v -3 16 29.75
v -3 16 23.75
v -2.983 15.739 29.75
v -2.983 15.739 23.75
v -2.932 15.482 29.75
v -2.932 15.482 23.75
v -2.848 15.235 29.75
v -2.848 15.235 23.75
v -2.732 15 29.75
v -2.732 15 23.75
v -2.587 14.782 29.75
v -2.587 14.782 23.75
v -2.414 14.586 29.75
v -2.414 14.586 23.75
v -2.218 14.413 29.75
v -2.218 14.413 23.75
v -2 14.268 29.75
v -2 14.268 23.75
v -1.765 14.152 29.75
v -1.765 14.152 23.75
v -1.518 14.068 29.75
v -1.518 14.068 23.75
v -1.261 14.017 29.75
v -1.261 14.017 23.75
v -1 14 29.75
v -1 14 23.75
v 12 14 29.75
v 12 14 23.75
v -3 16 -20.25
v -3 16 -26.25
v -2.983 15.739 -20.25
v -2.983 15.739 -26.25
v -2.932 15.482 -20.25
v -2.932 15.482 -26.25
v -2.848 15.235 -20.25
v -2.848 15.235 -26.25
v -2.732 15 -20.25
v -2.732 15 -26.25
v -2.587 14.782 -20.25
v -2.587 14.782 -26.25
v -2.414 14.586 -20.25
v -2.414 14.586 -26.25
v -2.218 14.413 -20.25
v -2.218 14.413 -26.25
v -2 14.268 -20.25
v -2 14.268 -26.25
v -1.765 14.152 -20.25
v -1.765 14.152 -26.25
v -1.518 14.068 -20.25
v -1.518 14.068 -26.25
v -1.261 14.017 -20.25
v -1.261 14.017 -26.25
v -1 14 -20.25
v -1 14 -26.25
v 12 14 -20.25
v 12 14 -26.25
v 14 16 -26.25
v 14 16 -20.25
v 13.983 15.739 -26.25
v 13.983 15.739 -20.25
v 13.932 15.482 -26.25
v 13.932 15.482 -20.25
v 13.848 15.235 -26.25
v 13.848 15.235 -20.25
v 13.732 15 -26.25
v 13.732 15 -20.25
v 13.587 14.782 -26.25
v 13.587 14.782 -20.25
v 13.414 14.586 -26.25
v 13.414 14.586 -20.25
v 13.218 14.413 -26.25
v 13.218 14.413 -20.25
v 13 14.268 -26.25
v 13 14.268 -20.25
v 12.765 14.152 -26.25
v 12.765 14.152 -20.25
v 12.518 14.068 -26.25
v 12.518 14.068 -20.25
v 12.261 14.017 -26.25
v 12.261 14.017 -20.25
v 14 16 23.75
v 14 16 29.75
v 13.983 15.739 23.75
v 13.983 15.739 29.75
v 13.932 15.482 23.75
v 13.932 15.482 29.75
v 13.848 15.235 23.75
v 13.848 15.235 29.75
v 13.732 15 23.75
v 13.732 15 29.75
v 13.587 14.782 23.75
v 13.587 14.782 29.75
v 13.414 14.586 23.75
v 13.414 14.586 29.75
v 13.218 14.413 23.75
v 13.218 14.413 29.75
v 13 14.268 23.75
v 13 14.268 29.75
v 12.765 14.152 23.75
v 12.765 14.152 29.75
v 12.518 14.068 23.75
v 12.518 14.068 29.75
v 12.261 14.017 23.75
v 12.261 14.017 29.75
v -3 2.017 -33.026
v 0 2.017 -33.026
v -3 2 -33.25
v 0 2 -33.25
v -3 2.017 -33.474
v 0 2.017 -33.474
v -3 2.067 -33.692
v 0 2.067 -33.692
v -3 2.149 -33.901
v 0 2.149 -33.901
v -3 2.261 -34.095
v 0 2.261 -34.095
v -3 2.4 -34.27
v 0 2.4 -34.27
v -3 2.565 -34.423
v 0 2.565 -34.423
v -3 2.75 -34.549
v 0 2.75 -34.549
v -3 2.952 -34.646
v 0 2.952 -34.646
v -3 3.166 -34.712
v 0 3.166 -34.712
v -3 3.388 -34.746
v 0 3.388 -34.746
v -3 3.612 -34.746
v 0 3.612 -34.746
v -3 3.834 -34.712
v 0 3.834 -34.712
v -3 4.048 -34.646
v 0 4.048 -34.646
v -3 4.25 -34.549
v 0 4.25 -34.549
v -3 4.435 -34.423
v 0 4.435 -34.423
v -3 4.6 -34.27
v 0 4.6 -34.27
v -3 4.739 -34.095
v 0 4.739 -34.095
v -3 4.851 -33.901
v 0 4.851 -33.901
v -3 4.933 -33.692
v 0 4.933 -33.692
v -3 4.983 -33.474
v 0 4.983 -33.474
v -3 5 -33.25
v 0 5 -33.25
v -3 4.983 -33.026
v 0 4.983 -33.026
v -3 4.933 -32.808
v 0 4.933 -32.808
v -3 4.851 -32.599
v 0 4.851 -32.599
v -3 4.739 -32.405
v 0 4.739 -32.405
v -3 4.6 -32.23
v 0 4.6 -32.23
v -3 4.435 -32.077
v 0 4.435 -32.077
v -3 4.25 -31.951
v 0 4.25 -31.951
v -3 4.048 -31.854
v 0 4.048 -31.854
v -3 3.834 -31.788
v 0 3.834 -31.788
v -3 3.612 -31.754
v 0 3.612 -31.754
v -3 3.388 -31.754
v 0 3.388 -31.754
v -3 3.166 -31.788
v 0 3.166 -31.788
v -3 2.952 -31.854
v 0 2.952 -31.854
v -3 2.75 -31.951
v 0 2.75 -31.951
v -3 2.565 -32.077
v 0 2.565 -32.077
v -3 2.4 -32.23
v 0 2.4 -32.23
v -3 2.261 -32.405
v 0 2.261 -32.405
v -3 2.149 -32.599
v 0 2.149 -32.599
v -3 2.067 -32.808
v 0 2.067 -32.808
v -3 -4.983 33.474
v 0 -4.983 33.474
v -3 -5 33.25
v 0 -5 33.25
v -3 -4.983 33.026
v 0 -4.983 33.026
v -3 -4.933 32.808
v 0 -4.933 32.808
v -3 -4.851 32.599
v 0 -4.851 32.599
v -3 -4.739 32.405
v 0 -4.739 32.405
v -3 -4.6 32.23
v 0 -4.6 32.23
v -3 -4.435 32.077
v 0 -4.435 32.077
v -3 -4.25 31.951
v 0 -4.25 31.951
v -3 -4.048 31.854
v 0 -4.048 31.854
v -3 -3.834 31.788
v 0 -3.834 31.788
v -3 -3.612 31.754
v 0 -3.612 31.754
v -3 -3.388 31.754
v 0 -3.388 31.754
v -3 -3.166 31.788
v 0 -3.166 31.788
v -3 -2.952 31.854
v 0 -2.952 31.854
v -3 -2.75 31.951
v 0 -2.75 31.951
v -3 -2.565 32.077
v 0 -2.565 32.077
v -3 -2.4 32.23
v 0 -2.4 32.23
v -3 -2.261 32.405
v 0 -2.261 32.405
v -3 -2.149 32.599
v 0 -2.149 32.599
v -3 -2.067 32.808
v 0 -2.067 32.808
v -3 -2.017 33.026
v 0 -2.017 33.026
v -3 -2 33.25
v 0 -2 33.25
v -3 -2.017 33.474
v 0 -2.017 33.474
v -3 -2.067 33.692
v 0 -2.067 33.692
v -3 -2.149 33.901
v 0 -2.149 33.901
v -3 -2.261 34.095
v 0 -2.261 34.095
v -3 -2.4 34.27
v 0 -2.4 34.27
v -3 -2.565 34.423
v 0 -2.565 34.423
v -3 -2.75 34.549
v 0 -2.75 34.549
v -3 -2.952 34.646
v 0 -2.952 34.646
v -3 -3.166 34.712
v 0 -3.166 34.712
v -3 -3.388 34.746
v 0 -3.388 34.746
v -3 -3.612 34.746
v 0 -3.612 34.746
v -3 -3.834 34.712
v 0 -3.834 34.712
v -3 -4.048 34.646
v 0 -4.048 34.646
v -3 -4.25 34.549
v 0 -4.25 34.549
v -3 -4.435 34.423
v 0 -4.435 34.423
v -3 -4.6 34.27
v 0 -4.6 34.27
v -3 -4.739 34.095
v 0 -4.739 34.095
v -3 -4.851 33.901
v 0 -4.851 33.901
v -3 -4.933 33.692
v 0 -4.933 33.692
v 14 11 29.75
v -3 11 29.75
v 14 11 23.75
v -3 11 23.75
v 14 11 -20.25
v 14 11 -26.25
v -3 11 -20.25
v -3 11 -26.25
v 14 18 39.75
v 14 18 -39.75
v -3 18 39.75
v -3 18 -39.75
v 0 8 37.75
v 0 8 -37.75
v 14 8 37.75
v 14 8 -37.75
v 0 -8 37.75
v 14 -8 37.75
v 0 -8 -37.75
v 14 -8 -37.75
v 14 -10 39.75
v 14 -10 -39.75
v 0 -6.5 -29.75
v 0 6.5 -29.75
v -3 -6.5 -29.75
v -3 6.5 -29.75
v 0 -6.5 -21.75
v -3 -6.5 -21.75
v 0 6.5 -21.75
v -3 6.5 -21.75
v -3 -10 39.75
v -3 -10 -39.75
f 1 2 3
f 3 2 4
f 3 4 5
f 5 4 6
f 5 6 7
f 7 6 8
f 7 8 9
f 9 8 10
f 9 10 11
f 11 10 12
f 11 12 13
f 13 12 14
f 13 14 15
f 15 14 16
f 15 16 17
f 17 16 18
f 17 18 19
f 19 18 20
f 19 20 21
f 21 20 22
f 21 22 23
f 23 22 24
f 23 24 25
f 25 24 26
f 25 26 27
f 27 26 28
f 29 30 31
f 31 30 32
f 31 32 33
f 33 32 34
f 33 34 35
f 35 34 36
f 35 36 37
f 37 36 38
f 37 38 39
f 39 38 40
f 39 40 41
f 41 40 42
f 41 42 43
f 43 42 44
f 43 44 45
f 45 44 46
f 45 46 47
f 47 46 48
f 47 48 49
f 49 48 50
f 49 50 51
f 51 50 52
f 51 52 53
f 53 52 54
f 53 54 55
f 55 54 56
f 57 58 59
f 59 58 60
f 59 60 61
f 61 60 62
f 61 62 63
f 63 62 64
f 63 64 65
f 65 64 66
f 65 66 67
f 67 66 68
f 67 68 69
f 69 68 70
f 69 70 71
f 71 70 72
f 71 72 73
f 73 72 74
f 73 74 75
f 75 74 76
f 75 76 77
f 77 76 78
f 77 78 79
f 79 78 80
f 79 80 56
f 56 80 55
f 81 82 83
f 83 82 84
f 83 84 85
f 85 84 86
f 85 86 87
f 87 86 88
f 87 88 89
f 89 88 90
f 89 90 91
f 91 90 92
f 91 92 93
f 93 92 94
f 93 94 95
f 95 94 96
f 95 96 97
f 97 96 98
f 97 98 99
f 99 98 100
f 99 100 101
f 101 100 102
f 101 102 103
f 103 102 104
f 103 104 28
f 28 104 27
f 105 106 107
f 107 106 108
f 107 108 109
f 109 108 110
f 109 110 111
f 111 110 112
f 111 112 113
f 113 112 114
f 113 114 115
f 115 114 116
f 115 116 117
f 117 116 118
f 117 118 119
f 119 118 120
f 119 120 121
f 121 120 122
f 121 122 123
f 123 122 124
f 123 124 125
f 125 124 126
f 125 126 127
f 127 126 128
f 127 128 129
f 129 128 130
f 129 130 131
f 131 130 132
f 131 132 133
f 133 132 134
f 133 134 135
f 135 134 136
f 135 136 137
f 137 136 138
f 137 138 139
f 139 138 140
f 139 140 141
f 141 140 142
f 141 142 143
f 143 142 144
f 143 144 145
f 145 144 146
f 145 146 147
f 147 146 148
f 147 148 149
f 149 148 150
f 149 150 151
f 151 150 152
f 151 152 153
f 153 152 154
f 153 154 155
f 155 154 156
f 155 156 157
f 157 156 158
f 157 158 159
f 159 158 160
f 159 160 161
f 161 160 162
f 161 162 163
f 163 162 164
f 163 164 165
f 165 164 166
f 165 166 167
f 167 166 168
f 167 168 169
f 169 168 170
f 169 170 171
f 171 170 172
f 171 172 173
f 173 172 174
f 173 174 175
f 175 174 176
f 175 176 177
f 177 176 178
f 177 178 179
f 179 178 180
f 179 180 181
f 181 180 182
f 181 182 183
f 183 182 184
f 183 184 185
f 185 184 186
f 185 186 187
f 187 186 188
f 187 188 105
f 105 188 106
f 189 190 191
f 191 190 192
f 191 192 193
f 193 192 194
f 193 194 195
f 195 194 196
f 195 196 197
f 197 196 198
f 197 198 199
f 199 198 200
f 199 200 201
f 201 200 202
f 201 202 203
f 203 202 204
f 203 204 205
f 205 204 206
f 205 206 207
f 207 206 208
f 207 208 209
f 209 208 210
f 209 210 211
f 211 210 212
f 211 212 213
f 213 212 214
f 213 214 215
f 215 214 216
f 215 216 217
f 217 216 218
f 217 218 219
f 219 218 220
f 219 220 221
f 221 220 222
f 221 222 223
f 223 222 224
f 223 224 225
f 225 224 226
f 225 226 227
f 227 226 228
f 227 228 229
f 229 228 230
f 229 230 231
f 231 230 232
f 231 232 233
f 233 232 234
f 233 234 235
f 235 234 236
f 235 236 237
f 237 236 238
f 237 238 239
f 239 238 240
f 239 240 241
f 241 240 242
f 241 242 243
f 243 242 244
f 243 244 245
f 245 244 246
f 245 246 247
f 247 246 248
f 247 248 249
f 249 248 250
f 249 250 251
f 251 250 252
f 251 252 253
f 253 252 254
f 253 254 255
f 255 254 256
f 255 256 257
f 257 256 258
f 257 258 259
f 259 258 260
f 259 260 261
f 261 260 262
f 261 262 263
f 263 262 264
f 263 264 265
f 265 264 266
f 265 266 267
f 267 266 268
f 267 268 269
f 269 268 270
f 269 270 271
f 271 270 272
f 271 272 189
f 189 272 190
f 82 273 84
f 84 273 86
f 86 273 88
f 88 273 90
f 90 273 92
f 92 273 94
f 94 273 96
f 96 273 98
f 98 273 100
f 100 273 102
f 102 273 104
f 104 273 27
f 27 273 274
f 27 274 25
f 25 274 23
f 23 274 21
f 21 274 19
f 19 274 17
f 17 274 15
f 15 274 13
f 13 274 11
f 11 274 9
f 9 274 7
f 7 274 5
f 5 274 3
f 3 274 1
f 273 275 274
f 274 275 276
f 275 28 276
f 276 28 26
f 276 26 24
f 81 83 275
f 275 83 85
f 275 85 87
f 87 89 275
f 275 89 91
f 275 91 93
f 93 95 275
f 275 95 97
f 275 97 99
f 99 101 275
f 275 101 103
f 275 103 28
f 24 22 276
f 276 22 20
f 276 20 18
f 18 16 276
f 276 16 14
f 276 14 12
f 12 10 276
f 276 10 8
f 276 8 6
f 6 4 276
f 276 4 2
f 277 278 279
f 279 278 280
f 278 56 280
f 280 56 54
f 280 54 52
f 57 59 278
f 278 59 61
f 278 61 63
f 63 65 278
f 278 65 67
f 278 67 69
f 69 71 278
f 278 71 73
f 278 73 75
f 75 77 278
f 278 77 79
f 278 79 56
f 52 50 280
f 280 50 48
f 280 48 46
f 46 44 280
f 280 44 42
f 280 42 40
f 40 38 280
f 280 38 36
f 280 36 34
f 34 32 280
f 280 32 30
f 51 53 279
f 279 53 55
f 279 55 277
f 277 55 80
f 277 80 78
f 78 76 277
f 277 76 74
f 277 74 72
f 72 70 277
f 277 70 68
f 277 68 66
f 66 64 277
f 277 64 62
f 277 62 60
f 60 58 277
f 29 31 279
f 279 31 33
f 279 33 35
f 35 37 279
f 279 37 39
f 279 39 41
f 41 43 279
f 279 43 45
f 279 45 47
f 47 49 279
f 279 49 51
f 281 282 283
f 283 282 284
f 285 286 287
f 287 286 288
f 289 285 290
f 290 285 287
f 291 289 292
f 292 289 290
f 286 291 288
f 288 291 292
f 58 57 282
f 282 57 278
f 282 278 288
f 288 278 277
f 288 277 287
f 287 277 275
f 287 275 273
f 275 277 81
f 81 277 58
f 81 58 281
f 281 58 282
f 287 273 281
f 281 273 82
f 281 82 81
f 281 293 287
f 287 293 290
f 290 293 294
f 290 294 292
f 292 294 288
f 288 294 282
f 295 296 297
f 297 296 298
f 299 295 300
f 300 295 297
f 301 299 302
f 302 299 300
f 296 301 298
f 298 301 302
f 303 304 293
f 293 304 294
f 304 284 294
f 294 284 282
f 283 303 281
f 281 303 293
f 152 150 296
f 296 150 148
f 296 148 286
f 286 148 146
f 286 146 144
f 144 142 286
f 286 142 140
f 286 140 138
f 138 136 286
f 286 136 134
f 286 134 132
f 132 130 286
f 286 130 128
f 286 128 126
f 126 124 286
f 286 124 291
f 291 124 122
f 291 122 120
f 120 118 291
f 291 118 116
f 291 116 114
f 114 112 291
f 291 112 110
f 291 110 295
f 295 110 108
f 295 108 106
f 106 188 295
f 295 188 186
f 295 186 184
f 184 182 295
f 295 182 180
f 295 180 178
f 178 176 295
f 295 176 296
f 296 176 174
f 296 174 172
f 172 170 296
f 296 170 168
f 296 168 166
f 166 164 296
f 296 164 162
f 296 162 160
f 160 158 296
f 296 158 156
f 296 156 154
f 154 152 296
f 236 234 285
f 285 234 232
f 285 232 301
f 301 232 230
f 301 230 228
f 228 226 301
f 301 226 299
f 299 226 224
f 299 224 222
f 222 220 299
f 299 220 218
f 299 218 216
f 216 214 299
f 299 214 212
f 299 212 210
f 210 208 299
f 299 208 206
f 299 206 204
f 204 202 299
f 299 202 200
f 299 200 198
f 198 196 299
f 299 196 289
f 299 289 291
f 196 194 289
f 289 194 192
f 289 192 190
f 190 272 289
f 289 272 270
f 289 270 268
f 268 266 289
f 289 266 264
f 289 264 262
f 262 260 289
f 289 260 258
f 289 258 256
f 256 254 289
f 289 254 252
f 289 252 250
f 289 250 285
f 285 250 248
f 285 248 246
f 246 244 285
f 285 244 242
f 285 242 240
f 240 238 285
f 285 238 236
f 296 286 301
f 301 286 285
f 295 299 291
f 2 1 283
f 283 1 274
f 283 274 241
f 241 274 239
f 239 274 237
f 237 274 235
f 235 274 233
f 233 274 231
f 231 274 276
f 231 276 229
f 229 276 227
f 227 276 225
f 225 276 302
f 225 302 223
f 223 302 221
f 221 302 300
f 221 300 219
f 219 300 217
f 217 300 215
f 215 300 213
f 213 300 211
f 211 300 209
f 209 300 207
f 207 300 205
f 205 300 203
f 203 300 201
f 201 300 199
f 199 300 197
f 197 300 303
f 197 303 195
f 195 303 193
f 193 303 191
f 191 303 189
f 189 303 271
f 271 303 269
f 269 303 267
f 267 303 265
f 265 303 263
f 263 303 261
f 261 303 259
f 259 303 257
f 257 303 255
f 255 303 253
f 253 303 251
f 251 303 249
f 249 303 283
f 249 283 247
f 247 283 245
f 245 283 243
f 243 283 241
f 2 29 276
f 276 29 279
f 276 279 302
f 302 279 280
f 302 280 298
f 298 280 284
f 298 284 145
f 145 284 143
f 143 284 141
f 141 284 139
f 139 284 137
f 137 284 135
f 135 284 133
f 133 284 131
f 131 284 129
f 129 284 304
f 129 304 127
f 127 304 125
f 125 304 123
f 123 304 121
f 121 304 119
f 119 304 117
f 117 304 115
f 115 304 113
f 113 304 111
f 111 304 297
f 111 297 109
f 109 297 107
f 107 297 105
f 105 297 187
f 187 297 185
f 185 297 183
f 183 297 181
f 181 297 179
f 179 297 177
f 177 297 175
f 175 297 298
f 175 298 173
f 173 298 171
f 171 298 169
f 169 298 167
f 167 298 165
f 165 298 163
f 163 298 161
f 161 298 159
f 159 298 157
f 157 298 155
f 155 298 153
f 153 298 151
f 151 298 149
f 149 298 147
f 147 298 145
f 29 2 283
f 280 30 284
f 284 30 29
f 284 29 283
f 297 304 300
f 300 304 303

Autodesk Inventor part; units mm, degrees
ref_plane "YZ Plane" through (0, 0, 0) normal (1, 0, 0) x (0, 1, 0)
ref_plane "XZ Plane" through (0, 0, 0) normal (0, 1, 0) x (-1, 0, 0)
ref_plane "XY Plane" through (0, 0, 0) normal (0, 0, 1) x (1, 0, 0)
sketch "Sketch1" plane through (0, 0, 0) normal (1, 0, 0) x (0, 1, 0)
  line L0 (-8, 37.75) -> (8, 37.75)
  line L1 (8, 37.75) -> (8, -37.75)
  line L2 (8, -37.75) -> (-8, -37.75)
  line L3 (-8, -37.75) -> (-8, 37.75)
  line L4 (-10, 39.75) -> (10, 39.75)
  line L5 (10, 39.75) -> (10, -39.75)
  line L6 (10, -39.75) -> (-10, -39.75)
  line L7 (-10, -39.75) -> (-10, 39.75)
  line L8 (-6.6198, 22.75) -> (6.3802, 22.75) construction
  line L9 (6.3802, 22.75) -> (6.3802, -19.25) construction
  line L10 (6.3802, -19.25) -> (-6.6198, -19.25) construction
  line L11 (-6.6198, -19.25) -> (-6.6198, 22.75) construction
  line L12 (-6.5, -21.75) -> (6.5, -21.75)
  line L13 (6.5, -21.75) -> (6.5, -29.75)
  line L14 (6.5, -29.75) -> (-6.5, -29.75)
  line L15 (-6.5, -29.75) -> (-6.5, -21.75)
  line L16 (8, 37.75) -> (-8, -37.75) construction
  line L17 (10, 39.75) -> (18, 39.75)
  line L18 (18, 39.75) -> (18, -39.75)
  line L19 (18, -39.75) -> (10, -39.75)
  line L20 (10, -39.75) -> (10, 39.75)
  line L21 (14, 29.75) -> (11, 29.75)
  line L22 (11, 29.75) -> (11, 23.75)
  line L23 (11, 23.75) -> (14, 23.75)
  line L24 (14, 23.75) -> (14, 29.75)
  line L25 (11, -20.25) -> (11, -26.25)
  line L26 (14, -26.25) -> (14, -20.25)
  line L27 (11, -26.25) -> (14, -26.25)
  line L28 (14, -20.25) -> (11, -20.25)
  point P0 (0, 0)
  point P1 (0, 0)
  point P2 (-3.5, 33.25)
  point P3 (3.5, -33.25)
  point P4 (0, 0)
  point P5 (14, 39.75)
  point P6 (12.5, 29.75)
  point P7 (10, -39.75)
  dimension "d0" = 16
  dimension "d1" = 75.5
  dimension "d2" = 4.5
  dimension "d3" = 4.5
  dimension "d4" = 2
  dimension "d5" = 4.5
  dimension "d6" = 4.5
  dimension "d7" = 13
  dimension "d8" = 42
  dimension "d9" = 15
  dimension "d10" = 13
  dimension "d11" = 8
  dimension "d12" = 1.5
  dimension "d13" = 16
  dimension "d18" = 8
  dimension "d19" = 3
  dimension "d20" = 6
  dimension "d23" = 50
  dimension "d28" = 10
  dimension "d40" = 4
extrude "Extrusion1" add sketch "Sketch1" against normal blind 3 contours L0 L1 L2 L3 | L4 L5 L6 L7
extrude "Extrusion2" add sketch "Sketch1" along normal blind 14 contours L4 L5 L6 L7
extrude "Extrusion3" add sketch "Sketch1" along normal blind 14 and the other way blind 3 contours L17 L18 L19 L5
hole "Hole1" at (0, 3.5, -33.25) at (0, -3.5, 33.25) direction (-1, 0, 0) diameter 3 end through all
fillet "Fillet1" radius 2 4 edges at (14, 14, 26.75) (14, 14, -23.25) (-3, 14, -23.25) (-3, 14, 26.75)
equation "\"d2\" = d3"
equation "\"d5\" = d3"
equation "\"d6\" = d3"
properties part number "rearlightMount"
